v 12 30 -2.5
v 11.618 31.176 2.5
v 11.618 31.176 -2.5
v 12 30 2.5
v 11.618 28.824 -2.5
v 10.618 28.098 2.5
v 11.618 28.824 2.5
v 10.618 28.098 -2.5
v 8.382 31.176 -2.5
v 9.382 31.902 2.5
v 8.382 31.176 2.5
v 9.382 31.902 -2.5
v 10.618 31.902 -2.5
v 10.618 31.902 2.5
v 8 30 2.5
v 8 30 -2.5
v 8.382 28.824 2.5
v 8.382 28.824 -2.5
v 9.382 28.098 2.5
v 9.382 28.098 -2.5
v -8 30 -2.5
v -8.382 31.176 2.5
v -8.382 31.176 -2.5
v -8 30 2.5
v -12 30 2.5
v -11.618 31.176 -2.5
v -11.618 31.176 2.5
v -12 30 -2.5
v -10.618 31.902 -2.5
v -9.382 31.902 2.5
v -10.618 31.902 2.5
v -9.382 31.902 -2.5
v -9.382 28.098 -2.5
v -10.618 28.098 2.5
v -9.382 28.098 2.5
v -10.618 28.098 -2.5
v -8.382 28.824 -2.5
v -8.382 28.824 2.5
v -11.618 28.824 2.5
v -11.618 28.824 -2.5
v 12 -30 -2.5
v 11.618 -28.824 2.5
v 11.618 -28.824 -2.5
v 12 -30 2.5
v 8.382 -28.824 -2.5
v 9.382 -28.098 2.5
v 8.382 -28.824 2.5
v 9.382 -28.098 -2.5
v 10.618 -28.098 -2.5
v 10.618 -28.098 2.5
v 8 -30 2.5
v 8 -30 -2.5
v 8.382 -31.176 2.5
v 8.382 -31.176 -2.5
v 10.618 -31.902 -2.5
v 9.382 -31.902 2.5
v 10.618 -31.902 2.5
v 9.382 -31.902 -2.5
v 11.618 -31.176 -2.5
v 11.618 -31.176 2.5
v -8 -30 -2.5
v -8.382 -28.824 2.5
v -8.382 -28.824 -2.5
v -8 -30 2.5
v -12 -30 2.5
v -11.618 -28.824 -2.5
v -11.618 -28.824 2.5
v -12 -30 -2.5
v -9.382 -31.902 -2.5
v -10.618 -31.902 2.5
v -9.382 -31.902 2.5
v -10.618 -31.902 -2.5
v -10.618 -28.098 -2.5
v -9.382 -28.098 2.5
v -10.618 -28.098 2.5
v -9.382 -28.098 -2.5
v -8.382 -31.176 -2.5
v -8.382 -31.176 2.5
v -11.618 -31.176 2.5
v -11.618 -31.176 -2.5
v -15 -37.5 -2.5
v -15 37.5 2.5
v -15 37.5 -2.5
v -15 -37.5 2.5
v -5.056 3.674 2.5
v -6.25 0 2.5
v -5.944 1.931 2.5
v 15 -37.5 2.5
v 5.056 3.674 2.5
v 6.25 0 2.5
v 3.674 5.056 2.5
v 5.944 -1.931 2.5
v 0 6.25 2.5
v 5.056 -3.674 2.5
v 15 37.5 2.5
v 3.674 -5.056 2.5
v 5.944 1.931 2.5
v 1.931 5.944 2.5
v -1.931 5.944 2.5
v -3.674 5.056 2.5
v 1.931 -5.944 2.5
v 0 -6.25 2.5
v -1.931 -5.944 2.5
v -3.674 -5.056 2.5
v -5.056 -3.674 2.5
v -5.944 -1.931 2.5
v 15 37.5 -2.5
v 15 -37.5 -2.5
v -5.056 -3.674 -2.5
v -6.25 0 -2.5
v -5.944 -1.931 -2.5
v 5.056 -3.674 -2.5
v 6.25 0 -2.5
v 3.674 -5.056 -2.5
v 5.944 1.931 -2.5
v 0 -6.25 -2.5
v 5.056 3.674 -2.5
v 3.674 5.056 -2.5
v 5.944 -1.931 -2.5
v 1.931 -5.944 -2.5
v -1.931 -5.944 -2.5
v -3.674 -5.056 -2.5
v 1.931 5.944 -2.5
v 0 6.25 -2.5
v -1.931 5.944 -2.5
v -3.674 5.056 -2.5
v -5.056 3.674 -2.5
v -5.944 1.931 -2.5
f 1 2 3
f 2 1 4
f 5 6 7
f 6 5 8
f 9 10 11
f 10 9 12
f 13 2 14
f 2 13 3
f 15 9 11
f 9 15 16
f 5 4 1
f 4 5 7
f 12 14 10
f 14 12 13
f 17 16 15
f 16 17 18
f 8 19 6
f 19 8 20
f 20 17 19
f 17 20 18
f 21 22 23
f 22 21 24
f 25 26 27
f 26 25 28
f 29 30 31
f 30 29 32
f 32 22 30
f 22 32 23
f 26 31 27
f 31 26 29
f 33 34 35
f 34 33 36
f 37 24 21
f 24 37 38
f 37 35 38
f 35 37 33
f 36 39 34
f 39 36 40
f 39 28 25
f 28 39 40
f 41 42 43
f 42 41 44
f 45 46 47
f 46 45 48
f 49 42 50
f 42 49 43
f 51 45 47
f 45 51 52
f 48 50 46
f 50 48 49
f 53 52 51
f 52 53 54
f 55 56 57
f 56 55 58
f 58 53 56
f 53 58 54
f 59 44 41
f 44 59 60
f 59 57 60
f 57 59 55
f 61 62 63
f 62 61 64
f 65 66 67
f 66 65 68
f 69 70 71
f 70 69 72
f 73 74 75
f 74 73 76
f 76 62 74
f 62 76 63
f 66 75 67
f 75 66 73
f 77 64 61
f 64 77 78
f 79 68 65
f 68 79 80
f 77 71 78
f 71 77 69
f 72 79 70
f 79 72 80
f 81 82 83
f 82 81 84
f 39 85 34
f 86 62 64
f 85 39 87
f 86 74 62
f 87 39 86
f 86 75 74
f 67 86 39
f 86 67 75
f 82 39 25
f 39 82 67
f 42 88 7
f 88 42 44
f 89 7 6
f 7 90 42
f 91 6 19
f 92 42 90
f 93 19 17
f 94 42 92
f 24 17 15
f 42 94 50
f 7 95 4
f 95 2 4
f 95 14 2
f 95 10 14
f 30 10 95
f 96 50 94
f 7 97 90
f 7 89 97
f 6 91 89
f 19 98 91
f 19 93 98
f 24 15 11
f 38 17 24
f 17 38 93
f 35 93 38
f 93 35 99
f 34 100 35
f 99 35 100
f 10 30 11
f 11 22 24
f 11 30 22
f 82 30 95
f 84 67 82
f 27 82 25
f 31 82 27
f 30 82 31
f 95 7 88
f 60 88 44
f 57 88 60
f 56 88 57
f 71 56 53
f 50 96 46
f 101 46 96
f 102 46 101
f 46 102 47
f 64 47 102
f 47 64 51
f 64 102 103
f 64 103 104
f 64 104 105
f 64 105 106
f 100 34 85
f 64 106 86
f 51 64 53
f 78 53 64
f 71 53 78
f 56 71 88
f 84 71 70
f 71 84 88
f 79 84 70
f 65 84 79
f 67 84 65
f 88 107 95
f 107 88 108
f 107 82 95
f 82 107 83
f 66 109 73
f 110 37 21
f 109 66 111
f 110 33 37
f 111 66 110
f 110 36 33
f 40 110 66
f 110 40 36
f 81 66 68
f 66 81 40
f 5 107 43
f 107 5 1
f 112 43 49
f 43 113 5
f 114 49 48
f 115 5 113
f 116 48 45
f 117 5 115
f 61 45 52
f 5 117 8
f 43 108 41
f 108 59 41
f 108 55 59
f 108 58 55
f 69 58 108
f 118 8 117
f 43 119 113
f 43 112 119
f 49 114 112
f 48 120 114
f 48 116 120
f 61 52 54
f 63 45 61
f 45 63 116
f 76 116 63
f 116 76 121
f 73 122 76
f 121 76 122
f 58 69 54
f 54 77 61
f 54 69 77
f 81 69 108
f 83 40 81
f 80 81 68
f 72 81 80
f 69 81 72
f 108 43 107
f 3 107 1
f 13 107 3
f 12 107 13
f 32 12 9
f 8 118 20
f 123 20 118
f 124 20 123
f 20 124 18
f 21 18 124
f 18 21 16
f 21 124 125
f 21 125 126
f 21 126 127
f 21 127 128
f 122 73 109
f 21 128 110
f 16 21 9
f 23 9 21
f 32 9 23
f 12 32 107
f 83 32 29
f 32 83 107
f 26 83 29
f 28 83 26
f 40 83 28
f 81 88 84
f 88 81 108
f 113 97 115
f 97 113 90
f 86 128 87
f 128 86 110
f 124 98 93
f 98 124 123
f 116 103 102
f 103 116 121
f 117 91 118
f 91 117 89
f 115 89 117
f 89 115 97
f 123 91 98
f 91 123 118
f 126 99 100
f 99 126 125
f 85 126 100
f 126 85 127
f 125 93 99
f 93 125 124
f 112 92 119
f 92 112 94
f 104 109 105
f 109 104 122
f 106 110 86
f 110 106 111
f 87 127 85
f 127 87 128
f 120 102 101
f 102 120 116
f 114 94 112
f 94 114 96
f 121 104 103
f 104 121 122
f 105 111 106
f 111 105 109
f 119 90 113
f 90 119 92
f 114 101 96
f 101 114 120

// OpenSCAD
difference() {
    cube([30,75,5], center=true);
    cylinder(r=6.25, h=7, center=true);
    for (i = [[10,30,-3.5],[-10,30,-3.5],[10,-30,-3.5],[-10,-30,-3.5]]) {
        translate(i)
            cylinder(r=2,h=7,$fn=10);
    }
}
